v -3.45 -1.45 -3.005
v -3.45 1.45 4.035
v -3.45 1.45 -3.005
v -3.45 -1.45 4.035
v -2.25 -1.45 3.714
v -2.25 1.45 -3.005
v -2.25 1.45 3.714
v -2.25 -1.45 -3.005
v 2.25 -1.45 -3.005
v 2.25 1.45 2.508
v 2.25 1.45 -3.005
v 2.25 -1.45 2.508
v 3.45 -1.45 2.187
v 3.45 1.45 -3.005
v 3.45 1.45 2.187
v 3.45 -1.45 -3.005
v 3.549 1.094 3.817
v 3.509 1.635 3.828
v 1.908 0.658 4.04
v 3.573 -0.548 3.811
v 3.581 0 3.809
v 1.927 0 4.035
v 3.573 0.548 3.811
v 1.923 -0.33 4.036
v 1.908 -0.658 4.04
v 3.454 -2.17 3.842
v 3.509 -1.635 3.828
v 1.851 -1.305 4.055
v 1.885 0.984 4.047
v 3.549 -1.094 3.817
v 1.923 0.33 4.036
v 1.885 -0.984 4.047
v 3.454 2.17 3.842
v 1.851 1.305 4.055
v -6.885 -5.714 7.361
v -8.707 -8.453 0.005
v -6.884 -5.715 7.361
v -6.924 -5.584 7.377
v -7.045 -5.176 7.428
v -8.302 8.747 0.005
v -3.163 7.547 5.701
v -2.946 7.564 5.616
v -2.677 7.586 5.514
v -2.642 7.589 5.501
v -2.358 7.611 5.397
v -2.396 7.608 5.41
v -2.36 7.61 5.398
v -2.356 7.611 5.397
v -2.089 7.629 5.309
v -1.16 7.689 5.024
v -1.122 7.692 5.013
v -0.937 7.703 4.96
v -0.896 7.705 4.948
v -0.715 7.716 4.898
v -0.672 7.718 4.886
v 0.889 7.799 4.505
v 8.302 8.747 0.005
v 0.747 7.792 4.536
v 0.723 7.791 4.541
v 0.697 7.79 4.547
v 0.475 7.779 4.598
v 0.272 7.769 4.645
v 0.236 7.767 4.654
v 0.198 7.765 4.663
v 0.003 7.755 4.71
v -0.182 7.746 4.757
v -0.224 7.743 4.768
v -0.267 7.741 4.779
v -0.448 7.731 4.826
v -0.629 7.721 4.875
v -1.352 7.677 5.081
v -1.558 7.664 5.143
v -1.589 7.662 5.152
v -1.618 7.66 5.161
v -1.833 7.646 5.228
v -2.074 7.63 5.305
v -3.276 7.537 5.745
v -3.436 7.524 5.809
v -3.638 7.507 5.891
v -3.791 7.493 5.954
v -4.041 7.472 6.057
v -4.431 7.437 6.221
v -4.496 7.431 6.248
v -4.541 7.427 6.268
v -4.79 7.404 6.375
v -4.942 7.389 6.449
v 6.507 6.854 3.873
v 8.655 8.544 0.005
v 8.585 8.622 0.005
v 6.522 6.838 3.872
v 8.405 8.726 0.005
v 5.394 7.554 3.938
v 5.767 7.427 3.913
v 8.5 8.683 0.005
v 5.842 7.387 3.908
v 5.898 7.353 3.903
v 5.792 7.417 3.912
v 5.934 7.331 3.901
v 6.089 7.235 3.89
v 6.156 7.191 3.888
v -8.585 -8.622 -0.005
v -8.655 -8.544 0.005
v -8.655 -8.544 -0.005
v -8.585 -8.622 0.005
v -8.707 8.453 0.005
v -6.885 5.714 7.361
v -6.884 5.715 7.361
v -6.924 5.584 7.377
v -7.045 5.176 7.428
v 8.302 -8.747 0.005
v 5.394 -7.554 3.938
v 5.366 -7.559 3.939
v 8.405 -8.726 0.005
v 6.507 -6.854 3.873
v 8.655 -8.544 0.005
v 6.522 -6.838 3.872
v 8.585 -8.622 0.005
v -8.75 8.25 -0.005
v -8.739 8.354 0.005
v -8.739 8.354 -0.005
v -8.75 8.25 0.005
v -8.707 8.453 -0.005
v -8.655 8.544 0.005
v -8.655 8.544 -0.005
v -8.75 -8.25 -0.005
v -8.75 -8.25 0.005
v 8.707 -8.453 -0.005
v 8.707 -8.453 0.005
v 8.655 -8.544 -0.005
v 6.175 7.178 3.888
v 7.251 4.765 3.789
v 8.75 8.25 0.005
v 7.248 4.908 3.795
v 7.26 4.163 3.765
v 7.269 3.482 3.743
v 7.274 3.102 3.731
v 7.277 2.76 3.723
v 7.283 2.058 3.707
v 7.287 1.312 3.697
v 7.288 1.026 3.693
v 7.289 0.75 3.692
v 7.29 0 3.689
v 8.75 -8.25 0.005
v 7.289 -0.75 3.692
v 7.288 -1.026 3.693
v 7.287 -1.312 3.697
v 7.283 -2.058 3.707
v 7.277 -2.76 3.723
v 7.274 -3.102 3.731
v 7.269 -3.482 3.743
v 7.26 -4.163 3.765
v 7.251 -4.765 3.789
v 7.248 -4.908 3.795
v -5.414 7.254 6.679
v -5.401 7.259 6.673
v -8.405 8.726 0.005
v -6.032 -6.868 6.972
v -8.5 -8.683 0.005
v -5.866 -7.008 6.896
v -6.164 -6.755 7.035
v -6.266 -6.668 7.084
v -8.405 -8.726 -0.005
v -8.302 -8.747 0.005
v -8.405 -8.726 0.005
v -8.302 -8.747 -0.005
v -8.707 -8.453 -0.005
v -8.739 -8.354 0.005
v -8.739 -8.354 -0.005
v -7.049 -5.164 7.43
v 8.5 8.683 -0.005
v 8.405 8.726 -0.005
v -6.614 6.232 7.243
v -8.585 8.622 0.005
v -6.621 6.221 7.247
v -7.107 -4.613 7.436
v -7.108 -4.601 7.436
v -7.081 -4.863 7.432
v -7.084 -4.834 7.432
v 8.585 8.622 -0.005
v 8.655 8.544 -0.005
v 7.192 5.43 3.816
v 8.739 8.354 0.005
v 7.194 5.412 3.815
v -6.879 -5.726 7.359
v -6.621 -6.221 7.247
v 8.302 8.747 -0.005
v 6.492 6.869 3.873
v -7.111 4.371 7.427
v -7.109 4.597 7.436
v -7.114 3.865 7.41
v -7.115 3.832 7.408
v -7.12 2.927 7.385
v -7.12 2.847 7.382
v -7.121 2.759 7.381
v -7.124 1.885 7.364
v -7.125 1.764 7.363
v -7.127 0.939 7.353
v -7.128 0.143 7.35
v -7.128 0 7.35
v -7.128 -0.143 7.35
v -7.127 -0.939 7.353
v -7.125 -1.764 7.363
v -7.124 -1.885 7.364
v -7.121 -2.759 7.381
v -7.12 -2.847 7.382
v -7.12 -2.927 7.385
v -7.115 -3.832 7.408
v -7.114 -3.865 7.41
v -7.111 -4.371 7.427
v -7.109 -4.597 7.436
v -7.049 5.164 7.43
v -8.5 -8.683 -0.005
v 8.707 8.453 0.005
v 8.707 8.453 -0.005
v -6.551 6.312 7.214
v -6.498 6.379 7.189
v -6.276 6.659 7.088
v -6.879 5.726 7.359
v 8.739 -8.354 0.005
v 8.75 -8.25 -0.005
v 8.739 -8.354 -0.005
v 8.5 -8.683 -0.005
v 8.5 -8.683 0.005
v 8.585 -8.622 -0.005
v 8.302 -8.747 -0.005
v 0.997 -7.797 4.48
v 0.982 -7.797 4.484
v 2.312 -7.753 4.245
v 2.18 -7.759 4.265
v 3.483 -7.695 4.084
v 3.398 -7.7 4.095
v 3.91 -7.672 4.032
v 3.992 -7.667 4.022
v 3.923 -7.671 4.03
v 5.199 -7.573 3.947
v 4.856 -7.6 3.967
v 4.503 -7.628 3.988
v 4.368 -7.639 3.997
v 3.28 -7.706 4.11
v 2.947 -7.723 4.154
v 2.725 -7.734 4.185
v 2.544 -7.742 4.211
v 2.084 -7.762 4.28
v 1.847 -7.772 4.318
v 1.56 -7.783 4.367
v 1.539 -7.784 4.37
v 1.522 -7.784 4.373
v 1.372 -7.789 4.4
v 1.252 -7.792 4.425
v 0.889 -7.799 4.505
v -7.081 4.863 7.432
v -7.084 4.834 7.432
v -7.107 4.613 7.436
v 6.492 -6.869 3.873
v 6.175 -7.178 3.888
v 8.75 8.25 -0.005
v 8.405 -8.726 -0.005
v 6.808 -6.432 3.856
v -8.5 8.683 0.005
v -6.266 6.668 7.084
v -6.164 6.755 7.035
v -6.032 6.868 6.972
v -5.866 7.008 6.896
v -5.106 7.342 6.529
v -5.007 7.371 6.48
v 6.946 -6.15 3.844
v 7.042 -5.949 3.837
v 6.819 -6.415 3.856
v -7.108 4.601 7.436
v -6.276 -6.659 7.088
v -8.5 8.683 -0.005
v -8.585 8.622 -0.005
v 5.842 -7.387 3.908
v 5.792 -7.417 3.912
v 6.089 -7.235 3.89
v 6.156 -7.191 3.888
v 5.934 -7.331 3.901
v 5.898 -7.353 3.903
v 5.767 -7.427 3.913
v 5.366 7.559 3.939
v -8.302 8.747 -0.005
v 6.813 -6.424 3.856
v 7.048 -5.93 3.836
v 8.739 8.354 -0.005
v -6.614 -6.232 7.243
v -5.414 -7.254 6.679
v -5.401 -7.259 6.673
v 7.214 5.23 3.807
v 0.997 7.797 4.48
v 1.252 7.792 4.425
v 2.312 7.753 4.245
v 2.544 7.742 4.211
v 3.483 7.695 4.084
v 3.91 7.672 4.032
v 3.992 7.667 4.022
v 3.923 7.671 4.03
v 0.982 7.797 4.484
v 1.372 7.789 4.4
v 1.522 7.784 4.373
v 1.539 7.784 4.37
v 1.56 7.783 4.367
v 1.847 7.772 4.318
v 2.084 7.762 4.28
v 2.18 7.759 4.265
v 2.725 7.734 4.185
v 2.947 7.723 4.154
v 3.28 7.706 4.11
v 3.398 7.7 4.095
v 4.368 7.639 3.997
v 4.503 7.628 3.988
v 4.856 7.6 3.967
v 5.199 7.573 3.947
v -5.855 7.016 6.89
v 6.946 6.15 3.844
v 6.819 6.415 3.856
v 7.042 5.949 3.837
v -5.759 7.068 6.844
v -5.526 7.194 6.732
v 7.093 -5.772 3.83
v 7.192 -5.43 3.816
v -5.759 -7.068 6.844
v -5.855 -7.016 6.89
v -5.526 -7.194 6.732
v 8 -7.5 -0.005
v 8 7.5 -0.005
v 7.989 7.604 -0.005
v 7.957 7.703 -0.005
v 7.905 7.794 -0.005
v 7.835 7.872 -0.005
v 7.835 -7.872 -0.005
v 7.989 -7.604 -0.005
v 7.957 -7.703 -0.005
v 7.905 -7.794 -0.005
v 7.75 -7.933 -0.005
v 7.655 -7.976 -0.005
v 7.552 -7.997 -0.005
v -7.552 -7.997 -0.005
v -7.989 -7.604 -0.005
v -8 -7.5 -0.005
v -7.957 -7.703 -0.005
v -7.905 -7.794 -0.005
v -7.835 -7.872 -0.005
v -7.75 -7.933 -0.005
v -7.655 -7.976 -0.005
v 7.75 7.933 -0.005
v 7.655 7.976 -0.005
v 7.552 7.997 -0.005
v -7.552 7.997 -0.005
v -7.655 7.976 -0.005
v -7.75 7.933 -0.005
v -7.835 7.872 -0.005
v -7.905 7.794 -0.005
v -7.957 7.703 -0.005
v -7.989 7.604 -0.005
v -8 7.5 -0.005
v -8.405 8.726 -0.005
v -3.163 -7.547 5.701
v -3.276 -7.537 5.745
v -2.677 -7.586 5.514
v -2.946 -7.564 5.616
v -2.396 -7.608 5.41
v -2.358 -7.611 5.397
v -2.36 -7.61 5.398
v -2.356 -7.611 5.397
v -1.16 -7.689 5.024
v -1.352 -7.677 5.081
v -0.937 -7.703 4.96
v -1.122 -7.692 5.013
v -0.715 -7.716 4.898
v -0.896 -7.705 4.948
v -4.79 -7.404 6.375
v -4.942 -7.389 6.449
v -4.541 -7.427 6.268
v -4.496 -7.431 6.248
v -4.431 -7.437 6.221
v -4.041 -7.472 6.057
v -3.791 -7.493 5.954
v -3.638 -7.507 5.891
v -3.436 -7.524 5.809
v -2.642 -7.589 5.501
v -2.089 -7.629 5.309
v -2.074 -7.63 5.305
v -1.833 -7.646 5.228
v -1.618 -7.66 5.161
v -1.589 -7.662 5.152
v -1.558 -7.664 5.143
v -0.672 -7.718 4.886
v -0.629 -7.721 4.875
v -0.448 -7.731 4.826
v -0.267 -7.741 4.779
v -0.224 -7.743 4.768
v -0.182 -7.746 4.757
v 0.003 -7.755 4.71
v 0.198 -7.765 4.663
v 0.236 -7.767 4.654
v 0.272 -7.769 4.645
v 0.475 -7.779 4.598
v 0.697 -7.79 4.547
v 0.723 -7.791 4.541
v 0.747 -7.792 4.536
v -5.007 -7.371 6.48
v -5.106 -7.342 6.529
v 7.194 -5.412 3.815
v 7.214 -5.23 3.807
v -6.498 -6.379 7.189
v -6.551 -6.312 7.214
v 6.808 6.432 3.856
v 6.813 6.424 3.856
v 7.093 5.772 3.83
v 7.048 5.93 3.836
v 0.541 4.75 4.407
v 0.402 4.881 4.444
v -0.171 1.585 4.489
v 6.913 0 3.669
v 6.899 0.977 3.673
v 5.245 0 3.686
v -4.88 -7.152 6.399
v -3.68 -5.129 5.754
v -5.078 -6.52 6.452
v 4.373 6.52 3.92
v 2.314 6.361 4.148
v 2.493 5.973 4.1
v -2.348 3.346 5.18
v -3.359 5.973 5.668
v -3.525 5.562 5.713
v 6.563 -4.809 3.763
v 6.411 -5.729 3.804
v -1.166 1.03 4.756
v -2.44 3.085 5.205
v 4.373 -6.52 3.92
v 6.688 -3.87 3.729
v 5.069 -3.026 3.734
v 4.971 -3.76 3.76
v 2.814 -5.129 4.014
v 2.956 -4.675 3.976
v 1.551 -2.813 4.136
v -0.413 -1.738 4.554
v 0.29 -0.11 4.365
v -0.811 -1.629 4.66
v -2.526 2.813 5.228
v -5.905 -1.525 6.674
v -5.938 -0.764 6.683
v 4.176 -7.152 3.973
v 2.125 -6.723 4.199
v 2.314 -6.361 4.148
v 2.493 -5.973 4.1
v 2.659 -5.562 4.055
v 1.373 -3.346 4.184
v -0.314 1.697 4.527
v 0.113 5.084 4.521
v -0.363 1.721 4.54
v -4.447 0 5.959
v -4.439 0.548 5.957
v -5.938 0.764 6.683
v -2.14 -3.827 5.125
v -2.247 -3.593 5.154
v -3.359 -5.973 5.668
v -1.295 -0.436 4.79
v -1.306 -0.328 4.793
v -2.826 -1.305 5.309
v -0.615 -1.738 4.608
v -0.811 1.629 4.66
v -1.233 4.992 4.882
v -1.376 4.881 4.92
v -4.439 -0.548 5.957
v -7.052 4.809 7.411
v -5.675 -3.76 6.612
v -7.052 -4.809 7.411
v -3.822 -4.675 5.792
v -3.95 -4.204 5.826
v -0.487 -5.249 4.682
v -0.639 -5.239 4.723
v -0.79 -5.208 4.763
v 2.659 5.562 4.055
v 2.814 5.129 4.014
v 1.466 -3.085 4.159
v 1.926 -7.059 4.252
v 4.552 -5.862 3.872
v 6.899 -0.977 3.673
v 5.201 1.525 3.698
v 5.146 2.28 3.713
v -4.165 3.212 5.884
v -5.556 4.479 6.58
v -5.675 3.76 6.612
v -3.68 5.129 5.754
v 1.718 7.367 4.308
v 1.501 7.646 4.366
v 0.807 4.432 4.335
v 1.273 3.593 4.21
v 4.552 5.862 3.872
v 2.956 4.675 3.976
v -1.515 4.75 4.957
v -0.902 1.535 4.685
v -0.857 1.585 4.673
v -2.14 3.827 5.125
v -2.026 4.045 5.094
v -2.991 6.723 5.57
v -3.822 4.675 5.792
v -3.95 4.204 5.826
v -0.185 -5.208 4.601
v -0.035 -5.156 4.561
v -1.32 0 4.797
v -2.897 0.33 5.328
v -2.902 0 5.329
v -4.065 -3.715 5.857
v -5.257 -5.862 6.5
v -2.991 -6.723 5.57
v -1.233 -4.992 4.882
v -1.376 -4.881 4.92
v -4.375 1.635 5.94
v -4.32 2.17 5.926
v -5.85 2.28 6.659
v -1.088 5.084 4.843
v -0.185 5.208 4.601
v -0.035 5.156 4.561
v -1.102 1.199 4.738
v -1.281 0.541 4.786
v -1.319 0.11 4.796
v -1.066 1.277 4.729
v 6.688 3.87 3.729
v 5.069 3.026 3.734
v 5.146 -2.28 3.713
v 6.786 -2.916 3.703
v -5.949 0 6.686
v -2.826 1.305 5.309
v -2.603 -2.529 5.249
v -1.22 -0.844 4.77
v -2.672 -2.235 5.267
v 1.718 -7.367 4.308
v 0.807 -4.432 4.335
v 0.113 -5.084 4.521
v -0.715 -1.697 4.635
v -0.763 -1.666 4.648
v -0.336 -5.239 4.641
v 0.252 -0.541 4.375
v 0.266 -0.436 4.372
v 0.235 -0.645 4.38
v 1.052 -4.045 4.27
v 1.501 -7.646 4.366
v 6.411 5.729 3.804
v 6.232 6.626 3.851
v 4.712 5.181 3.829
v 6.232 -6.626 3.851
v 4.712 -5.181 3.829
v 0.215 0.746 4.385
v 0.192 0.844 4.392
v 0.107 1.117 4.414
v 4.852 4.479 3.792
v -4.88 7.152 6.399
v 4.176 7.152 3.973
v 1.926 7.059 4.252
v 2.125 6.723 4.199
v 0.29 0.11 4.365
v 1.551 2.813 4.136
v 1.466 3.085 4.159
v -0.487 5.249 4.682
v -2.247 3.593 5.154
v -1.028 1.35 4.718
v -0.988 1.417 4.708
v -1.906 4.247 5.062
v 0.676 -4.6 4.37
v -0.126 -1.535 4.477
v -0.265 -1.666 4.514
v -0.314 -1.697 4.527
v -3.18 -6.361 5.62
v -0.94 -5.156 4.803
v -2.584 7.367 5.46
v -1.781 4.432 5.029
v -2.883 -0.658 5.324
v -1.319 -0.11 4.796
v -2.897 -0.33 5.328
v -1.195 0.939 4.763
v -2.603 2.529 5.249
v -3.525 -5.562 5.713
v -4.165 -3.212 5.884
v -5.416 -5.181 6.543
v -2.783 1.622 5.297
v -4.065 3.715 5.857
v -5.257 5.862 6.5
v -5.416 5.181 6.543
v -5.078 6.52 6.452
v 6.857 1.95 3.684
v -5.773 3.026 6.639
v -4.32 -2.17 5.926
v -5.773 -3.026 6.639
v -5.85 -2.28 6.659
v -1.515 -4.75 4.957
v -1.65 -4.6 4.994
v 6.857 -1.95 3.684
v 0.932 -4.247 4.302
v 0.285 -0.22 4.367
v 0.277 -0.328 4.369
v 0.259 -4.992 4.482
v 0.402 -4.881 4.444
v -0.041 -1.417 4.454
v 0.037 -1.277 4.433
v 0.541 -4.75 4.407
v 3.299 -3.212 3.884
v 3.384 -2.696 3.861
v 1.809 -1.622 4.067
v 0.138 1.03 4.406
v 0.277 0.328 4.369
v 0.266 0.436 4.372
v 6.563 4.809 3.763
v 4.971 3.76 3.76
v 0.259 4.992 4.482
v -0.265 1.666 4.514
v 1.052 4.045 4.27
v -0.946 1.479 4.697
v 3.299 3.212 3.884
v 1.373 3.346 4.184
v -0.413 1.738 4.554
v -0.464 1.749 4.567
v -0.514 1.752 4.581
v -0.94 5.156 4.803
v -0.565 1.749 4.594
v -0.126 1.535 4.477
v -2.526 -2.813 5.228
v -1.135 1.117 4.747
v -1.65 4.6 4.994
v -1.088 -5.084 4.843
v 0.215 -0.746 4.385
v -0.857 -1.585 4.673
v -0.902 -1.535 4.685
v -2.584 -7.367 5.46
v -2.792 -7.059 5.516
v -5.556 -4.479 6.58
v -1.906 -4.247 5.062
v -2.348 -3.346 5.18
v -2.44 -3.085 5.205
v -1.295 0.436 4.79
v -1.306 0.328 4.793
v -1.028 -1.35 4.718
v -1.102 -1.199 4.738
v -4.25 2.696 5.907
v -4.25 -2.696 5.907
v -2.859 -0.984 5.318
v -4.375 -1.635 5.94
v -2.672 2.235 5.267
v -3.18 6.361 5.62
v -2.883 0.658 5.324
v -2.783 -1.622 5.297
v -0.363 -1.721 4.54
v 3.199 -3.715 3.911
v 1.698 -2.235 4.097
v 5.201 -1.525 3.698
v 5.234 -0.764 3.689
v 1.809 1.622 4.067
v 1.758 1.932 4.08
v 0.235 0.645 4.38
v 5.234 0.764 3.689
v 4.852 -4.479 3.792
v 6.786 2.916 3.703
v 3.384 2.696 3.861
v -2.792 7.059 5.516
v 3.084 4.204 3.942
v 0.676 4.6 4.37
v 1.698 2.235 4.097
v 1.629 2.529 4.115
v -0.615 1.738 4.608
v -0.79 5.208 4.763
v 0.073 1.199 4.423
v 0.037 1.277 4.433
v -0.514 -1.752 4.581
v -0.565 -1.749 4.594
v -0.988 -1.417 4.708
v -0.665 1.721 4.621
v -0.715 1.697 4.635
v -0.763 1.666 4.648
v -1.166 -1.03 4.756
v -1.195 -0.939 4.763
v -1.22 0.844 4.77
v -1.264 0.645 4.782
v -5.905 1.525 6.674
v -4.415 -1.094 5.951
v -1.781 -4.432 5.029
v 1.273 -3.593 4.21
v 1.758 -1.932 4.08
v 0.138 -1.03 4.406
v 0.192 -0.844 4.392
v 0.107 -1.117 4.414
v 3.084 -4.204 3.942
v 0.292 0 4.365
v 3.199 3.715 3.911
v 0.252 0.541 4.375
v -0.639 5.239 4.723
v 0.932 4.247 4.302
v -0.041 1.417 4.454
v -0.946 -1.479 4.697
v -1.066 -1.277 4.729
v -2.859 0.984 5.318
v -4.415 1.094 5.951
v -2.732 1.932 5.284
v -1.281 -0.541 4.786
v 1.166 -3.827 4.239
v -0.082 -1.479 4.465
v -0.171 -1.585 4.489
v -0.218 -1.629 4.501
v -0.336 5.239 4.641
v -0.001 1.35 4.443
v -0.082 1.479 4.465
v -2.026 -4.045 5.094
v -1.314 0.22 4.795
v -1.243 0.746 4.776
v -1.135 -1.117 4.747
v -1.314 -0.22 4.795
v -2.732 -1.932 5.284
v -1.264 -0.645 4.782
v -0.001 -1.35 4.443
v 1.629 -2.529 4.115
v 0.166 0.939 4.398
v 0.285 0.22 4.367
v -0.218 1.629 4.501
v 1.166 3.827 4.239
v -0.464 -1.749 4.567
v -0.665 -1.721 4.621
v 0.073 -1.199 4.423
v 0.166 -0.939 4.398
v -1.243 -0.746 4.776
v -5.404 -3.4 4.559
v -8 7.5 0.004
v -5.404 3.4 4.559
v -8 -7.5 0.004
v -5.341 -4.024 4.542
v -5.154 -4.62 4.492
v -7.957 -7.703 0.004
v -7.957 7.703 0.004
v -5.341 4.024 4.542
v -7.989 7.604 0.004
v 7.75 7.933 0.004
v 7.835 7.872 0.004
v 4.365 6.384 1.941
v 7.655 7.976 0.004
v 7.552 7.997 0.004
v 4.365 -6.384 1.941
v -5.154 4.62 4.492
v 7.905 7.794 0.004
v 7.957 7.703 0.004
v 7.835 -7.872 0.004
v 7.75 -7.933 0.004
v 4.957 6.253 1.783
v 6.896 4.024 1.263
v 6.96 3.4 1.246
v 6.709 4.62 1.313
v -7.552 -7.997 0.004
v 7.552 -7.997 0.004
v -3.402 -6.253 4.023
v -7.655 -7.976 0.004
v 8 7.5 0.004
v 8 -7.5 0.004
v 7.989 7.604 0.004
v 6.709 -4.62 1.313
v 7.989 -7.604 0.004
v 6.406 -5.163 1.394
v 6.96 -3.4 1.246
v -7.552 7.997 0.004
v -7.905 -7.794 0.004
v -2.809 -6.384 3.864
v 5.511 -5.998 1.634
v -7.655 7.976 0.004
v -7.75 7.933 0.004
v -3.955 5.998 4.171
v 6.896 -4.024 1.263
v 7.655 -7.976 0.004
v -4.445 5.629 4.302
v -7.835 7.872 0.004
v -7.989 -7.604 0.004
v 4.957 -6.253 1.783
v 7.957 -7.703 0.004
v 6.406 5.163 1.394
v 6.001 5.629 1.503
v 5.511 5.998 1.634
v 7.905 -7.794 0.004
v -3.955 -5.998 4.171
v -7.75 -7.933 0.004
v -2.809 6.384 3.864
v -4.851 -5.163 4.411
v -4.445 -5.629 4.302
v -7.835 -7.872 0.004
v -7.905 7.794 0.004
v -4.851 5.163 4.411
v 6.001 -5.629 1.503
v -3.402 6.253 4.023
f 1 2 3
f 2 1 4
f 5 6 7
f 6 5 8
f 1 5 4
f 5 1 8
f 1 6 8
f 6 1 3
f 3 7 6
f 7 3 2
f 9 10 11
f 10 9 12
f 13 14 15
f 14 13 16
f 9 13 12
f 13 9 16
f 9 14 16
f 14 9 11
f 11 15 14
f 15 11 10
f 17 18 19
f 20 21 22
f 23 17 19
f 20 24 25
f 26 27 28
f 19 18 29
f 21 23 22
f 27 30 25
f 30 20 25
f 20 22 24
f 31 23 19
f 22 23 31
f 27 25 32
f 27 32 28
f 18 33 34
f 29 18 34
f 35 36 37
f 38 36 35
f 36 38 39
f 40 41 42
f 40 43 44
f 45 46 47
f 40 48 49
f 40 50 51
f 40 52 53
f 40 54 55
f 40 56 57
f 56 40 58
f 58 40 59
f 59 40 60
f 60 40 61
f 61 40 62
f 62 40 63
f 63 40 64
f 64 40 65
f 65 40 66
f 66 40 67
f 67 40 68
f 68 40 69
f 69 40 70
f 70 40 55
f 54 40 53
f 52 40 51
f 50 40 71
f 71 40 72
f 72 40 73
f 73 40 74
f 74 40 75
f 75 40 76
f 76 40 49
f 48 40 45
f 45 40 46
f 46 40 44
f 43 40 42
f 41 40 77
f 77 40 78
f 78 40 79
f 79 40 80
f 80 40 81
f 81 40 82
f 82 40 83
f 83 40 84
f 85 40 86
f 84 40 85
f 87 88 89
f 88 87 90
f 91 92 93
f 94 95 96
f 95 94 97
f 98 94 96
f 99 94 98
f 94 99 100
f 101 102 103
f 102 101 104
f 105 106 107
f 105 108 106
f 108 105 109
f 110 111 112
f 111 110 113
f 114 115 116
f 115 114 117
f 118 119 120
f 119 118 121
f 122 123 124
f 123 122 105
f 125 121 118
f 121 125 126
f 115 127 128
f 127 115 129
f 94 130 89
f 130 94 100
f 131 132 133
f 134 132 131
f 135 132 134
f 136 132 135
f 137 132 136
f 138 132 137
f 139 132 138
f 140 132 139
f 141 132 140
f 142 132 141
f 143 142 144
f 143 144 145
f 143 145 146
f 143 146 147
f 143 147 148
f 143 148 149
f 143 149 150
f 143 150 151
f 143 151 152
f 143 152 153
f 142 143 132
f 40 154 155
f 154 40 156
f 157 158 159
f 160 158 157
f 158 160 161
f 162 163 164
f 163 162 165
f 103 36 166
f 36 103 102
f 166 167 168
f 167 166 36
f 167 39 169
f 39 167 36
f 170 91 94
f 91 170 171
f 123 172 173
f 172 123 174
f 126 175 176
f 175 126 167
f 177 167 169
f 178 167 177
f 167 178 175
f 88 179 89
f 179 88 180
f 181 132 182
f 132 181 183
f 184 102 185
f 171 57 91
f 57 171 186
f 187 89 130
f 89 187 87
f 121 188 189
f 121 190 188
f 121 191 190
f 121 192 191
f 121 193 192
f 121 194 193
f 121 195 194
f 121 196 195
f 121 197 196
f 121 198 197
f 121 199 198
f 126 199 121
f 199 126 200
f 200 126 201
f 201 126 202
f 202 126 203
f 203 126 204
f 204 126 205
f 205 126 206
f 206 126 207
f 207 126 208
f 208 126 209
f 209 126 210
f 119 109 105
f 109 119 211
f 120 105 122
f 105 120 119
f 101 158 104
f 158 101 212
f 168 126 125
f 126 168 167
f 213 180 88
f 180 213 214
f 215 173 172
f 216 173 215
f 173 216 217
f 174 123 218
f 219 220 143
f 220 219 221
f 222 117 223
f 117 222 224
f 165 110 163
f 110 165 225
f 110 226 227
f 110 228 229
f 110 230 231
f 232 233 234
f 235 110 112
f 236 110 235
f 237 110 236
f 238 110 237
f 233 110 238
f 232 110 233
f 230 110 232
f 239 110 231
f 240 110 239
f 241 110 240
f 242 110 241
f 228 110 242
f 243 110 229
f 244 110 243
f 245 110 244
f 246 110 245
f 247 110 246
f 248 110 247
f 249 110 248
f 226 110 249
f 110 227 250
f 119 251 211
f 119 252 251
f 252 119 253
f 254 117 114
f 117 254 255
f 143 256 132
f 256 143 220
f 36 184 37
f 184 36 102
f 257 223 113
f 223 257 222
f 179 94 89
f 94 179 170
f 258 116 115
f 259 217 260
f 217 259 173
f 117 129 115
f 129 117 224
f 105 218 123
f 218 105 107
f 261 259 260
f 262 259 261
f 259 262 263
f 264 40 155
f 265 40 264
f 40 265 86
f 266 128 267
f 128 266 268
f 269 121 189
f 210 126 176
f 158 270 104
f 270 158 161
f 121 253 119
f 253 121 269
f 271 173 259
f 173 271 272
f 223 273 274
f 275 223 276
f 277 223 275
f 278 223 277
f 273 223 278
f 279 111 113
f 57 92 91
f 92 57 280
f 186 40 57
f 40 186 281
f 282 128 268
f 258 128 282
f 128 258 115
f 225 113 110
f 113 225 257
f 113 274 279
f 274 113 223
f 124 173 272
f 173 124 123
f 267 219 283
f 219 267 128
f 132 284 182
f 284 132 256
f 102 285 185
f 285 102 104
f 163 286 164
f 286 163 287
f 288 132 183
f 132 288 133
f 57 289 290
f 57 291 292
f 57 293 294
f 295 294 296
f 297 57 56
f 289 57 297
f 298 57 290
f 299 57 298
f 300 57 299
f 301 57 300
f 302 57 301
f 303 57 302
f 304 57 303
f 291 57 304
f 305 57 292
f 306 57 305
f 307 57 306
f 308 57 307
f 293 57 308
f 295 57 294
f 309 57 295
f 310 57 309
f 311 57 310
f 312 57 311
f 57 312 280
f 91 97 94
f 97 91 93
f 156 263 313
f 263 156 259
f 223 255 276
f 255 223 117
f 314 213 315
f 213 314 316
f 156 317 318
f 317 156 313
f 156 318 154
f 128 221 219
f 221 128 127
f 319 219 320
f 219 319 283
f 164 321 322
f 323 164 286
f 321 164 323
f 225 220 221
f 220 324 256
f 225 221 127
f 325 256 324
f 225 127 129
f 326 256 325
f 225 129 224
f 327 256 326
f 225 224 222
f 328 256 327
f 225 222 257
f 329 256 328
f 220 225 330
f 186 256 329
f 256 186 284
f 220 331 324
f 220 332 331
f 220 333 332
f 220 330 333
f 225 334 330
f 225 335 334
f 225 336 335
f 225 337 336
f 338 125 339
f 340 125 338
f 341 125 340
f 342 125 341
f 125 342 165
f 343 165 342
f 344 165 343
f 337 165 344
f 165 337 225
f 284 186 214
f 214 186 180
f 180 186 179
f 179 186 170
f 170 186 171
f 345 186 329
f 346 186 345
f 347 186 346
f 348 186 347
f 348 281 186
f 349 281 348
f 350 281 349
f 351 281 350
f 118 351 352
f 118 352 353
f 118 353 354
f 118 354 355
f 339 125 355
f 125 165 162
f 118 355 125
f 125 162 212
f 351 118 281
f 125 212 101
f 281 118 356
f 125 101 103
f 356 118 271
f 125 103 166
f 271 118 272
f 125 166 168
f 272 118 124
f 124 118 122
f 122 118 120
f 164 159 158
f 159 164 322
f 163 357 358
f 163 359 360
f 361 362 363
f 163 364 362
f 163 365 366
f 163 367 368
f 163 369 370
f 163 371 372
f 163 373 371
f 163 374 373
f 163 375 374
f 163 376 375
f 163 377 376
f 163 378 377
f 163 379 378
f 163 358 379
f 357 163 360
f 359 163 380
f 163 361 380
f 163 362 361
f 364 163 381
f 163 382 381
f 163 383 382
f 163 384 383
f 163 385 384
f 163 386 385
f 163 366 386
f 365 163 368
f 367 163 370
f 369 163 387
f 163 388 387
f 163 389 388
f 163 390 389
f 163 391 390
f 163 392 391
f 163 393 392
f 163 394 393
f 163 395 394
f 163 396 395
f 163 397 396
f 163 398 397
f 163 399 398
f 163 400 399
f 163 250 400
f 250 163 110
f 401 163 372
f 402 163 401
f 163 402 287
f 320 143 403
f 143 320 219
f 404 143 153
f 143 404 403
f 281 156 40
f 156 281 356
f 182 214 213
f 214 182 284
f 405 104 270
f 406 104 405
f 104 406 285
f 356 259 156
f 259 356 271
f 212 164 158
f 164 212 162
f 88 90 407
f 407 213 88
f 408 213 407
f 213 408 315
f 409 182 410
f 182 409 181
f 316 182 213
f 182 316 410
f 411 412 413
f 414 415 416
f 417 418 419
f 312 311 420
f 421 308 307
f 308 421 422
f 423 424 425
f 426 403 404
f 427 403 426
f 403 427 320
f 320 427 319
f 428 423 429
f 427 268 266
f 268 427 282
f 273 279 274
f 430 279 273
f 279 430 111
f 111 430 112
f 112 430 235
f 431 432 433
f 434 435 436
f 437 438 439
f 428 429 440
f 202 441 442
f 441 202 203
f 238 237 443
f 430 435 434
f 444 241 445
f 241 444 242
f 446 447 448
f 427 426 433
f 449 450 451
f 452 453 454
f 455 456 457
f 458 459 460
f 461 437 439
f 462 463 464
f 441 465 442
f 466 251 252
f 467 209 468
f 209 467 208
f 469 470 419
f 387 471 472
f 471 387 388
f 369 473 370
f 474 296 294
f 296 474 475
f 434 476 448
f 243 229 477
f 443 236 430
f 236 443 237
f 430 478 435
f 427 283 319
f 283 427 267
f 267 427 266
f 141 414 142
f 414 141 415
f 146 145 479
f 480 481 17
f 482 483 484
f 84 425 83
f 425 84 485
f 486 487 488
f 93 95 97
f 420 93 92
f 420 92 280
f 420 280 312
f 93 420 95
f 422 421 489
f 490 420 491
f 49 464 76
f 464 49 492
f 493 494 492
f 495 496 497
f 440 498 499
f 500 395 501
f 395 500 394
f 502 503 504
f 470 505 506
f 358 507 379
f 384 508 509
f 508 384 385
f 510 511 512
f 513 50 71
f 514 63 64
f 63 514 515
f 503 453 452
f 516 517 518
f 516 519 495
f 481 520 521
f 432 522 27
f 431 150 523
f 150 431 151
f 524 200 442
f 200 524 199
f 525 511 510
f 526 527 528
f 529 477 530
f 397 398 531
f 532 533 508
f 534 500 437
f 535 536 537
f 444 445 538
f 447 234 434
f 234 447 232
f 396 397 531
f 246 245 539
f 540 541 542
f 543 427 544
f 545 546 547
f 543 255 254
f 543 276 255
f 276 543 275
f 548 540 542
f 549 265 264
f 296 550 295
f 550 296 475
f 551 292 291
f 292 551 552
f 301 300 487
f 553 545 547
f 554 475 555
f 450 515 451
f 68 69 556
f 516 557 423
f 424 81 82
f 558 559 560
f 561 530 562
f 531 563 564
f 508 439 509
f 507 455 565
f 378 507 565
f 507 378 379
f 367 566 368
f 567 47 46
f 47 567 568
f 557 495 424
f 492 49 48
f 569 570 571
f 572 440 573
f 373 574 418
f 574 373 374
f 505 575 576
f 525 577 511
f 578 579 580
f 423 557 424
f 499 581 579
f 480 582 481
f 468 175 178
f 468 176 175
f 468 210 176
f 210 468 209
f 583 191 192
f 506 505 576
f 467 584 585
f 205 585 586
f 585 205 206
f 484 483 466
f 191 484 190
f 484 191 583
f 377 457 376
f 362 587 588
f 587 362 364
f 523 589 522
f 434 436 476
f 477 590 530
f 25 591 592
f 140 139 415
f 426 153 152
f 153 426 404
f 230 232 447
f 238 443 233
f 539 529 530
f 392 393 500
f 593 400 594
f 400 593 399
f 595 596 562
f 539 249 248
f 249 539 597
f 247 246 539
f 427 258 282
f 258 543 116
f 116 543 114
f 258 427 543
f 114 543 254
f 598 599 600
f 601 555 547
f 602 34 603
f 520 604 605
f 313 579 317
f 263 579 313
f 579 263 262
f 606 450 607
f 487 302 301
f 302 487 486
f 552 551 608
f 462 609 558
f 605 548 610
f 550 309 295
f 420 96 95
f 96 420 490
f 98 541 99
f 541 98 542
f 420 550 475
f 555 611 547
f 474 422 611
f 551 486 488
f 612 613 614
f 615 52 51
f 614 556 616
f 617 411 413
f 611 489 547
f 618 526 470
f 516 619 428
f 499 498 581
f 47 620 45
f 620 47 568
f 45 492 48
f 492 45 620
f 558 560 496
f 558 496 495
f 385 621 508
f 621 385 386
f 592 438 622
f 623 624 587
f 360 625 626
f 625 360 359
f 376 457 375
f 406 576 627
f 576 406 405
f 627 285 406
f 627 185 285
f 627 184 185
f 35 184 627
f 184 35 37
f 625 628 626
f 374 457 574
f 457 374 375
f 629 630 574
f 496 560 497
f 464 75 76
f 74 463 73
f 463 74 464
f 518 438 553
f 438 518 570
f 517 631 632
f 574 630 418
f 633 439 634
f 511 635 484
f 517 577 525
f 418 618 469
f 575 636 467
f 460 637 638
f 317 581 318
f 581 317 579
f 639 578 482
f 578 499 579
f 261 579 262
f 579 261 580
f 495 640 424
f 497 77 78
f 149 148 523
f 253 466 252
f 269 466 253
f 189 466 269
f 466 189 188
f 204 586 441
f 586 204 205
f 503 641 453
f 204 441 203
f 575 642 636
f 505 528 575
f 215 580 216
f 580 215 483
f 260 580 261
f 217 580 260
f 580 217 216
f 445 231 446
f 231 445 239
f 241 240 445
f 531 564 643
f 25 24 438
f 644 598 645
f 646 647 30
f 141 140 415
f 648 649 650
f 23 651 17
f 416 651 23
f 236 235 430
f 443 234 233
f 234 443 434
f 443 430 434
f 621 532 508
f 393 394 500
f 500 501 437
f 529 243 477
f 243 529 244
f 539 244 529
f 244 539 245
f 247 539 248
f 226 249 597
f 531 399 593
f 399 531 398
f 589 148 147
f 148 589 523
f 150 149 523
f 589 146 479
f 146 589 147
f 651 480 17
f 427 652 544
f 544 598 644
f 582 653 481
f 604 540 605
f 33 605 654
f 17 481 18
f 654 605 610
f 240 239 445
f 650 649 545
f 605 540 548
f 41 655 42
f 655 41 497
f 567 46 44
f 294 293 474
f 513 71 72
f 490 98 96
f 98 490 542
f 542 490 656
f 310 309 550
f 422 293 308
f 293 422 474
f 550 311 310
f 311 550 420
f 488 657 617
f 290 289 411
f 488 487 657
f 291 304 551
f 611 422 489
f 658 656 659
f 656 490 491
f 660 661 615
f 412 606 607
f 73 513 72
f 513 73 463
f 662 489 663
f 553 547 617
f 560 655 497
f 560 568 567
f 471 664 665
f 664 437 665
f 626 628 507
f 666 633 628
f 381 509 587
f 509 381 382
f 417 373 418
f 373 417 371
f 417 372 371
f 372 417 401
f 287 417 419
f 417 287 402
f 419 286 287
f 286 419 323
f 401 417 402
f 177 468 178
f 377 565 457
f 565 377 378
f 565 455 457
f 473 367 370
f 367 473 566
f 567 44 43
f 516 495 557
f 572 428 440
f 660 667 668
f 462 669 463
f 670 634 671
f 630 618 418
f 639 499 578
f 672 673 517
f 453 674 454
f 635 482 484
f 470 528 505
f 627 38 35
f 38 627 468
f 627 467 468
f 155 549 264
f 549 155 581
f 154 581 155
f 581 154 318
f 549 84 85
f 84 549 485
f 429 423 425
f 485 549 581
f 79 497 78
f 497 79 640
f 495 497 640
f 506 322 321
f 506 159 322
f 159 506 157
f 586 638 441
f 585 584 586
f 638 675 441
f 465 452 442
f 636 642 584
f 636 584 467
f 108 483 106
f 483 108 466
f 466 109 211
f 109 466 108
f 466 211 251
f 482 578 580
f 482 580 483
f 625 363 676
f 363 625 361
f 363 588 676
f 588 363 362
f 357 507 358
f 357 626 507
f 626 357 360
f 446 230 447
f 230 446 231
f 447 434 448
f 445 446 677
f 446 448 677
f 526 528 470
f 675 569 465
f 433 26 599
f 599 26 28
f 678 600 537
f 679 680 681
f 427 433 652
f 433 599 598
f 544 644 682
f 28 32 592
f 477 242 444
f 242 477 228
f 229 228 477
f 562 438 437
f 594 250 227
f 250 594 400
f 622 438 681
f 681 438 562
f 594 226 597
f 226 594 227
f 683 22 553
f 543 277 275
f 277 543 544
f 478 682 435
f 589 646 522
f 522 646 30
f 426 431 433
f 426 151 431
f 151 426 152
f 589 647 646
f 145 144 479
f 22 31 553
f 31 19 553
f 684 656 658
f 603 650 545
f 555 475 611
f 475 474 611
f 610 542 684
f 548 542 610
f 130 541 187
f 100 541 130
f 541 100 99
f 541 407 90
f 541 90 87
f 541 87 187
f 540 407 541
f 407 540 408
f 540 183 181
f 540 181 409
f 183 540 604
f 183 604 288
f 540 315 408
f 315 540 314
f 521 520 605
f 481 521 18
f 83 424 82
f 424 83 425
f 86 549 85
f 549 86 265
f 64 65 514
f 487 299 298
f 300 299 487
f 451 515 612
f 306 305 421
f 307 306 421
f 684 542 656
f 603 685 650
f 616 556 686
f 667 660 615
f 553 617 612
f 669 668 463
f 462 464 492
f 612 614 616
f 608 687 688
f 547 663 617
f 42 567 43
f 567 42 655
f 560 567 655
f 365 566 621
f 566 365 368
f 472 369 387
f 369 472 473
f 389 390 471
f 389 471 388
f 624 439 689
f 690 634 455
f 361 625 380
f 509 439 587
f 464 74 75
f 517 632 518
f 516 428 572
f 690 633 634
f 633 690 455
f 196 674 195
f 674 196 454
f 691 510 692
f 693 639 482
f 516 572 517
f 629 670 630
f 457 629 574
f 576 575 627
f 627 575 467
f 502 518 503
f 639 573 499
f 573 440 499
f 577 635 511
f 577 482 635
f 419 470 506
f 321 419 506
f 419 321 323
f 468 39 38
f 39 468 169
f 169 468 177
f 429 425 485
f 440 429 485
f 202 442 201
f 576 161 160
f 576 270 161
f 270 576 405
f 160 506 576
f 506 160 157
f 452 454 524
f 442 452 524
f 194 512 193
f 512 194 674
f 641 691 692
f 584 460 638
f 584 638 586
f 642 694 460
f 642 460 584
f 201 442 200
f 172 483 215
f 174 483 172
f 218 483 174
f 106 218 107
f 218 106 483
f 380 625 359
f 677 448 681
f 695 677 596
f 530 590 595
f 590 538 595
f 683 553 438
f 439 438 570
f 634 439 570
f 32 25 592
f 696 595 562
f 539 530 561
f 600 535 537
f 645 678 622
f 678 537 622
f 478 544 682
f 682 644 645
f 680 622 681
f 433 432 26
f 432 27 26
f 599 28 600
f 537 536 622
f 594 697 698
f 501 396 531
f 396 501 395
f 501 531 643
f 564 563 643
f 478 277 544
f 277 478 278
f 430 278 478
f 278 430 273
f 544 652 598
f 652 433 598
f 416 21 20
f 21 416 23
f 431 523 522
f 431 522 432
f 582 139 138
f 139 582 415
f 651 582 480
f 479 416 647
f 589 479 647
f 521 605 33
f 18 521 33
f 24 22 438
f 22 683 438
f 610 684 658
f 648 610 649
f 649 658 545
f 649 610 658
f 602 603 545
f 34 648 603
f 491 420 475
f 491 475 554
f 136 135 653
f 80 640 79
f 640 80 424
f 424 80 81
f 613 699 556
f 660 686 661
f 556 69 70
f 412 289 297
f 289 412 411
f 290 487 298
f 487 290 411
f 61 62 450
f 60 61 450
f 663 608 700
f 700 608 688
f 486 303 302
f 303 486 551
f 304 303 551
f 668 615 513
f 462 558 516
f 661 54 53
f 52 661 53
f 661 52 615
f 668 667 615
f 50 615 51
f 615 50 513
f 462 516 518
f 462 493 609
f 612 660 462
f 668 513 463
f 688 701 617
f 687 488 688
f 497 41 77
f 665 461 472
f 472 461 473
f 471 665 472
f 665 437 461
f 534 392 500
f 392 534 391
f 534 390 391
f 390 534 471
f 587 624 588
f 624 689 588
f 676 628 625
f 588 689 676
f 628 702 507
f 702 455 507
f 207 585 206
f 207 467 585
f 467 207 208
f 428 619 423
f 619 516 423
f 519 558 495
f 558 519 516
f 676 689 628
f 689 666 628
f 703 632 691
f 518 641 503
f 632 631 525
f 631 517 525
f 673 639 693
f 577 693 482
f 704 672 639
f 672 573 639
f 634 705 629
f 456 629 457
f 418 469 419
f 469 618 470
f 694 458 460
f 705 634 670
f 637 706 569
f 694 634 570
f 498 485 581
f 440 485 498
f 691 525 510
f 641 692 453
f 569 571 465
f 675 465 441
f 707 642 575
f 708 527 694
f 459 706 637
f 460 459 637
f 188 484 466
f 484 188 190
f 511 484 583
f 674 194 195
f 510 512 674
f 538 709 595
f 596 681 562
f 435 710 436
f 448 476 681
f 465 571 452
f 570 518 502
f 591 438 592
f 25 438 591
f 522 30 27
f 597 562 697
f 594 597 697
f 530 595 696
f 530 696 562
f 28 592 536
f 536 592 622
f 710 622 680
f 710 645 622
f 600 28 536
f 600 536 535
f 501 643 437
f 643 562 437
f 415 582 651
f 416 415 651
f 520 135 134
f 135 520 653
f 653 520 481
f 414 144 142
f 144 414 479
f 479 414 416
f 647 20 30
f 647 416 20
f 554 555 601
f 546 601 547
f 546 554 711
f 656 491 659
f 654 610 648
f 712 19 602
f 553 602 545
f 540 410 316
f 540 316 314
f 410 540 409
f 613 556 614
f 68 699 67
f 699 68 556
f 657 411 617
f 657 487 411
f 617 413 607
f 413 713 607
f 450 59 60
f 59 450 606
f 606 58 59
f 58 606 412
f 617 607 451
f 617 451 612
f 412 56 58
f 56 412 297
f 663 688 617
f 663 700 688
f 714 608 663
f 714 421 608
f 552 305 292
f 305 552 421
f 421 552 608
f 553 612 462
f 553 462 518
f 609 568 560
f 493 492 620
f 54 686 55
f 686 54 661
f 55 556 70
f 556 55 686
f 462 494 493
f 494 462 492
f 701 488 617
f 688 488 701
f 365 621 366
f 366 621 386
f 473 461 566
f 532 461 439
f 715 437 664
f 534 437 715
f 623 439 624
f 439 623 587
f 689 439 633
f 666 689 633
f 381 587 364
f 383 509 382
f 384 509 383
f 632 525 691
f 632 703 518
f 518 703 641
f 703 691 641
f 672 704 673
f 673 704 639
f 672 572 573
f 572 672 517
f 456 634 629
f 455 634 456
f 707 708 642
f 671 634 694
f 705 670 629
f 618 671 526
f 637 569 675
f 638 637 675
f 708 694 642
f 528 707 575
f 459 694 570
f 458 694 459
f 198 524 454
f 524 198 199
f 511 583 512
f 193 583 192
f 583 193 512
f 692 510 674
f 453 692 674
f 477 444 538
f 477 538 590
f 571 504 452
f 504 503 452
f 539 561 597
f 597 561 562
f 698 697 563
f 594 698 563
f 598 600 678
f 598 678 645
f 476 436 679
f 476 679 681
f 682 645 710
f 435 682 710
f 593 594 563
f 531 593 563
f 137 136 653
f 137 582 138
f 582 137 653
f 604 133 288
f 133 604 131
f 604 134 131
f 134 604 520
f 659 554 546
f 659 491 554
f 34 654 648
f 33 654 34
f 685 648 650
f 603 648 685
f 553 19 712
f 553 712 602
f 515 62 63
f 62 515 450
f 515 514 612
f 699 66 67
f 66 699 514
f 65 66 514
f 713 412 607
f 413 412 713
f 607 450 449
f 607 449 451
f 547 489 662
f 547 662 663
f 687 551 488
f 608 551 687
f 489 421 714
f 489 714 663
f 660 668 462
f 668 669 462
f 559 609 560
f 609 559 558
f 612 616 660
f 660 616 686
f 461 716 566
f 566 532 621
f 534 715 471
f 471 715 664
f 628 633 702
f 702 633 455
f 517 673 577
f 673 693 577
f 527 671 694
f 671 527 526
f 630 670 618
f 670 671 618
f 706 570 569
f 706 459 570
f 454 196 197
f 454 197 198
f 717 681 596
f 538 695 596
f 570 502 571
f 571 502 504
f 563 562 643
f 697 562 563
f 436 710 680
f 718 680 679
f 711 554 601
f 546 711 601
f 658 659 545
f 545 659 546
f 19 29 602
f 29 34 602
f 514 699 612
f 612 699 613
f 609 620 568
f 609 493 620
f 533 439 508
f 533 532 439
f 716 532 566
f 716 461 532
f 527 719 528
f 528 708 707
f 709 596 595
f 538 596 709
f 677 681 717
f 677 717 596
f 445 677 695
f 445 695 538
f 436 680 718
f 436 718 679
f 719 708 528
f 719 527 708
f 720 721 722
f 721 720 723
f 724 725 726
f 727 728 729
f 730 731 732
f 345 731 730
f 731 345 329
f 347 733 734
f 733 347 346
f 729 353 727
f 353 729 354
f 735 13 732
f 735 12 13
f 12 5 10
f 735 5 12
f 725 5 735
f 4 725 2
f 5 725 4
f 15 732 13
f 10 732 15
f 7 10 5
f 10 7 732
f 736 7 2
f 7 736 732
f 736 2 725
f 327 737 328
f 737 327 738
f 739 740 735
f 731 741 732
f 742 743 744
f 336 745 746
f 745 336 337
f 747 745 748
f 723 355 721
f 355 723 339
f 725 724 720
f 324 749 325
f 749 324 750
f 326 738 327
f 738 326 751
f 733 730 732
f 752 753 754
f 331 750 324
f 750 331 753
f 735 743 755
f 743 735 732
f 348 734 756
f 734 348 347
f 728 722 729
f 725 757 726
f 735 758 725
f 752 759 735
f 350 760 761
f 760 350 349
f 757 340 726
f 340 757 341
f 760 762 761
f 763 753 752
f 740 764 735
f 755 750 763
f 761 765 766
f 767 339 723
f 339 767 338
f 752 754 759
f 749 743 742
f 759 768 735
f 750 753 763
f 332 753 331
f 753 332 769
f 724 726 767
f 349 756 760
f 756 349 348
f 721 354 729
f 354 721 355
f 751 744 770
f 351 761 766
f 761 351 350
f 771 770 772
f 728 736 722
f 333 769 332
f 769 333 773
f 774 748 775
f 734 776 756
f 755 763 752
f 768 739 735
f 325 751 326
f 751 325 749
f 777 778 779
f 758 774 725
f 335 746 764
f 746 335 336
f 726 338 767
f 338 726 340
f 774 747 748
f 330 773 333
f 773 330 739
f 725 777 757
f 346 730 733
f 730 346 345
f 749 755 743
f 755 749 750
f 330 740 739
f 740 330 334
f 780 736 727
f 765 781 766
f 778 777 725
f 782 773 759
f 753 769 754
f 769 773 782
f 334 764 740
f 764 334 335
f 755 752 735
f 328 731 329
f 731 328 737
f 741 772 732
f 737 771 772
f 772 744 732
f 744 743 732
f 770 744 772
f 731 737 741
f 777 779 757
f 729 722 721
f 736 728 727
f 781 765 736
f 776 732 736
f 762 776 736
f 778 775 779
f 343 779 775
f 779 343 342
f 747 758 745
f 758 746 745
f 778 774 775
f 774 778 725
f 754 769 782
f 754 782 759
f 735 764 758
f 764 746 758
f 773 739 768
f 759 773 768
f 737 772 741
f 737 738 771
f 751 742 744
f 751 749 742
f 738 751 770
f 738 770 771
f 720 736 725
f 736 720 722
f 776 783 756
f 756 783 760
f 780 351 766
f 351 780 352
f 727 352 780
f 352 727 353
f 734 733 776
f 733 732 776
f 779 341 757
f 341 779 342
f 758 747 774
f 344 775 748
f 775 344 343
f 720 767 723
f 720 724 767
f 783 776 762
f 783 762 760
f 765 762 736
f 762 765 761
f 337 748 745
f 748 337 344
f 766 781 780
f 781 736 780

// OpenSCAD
union () {
  difference () {
    translate ([-2.85, 0, 0]) {
      union () {
        color ([0, 1, 0, ]) {
          hull () {
            translate ([0, 0, 5]) {
              cube ([1.2, 2.9, 0.01], center=true);
            }
            translate ([0, 0, -3]) {
              translate ([0, 0, 0]) {
                cube ([1.2, 2.9, 0.01], center=true);
              }
            }
          }
        }
        color ([0, 1, 0, ]) {
          hull () {
            translate ([5.7, 0, 5]) {
              cube ([1.2, 2.9, 0.01], center=true);
            }
            translate ([0, 0, -3]) {
              translate ([5.7, 0, 0]) {
                cube ([1.2, 2.9, 0.01], center=true);
              }
            }
          }
        }
      }
    }
    translate ([0, 0, 6.5]) {
      rotate ([0.0,14.999999999999998,0.0]) {
        translate ([0, 0, 24.56125000000001]) {
          scale ([1, 2.1, 1]) {
            sphere ($fn=100, r=26.56125000000001);
          }
        }
      }
    }
  }
  difference () {
    difference () {
      hull () {
        translate ([0, 0, 6.5]) {
          rotate ([0.0,14.999999999999998,0.0]) {
            minkowski () {
              cube ([8.3, 8.3, 0.0099], center=true);
              cylinder ($fs=0.1, h=1.0E-4, r=3, center=true);
            }
          }
        }
        minkowski () {
          cube ([16.5, 16.5, 0.0099], center=true);
          cylinder ($fs=0.1, h=1.0E-4, r=0.5, center=true);
        }
      }
      translate ([0, 0, 6.5]) {
        rotate ([0.0,14.999999999999998,0.0]) {
          translate ([0, 0, 24.56125000000001]) {
            scale ([1, 2.1, 1]) {
              sphere ($fn=100, r=26.56125000000001);
            }
          }
        }
      }
    }
    #union () {
      hull () {
        rotate ([0.0,14.999999999999998,0.0]) {
          translate ([0, 0, 3.0]) {
            minkowski () {
              cube ([6.800000000000001, 6.800000000000001, 0.0099], center=true);
              cylinder ($fs=0.1, h=1.0E-4, r=3, center=true);
            }
          }
        }
        translate ([0, 0, -0.001]) {
          minkowski () {
            cube ([15.0, 15.0, 0.0099], center=true);
            cylinder ($fs=0.1, h=1.0E-4, r=0.5, center=true);
          }
        }
      }
    }
  }
}
